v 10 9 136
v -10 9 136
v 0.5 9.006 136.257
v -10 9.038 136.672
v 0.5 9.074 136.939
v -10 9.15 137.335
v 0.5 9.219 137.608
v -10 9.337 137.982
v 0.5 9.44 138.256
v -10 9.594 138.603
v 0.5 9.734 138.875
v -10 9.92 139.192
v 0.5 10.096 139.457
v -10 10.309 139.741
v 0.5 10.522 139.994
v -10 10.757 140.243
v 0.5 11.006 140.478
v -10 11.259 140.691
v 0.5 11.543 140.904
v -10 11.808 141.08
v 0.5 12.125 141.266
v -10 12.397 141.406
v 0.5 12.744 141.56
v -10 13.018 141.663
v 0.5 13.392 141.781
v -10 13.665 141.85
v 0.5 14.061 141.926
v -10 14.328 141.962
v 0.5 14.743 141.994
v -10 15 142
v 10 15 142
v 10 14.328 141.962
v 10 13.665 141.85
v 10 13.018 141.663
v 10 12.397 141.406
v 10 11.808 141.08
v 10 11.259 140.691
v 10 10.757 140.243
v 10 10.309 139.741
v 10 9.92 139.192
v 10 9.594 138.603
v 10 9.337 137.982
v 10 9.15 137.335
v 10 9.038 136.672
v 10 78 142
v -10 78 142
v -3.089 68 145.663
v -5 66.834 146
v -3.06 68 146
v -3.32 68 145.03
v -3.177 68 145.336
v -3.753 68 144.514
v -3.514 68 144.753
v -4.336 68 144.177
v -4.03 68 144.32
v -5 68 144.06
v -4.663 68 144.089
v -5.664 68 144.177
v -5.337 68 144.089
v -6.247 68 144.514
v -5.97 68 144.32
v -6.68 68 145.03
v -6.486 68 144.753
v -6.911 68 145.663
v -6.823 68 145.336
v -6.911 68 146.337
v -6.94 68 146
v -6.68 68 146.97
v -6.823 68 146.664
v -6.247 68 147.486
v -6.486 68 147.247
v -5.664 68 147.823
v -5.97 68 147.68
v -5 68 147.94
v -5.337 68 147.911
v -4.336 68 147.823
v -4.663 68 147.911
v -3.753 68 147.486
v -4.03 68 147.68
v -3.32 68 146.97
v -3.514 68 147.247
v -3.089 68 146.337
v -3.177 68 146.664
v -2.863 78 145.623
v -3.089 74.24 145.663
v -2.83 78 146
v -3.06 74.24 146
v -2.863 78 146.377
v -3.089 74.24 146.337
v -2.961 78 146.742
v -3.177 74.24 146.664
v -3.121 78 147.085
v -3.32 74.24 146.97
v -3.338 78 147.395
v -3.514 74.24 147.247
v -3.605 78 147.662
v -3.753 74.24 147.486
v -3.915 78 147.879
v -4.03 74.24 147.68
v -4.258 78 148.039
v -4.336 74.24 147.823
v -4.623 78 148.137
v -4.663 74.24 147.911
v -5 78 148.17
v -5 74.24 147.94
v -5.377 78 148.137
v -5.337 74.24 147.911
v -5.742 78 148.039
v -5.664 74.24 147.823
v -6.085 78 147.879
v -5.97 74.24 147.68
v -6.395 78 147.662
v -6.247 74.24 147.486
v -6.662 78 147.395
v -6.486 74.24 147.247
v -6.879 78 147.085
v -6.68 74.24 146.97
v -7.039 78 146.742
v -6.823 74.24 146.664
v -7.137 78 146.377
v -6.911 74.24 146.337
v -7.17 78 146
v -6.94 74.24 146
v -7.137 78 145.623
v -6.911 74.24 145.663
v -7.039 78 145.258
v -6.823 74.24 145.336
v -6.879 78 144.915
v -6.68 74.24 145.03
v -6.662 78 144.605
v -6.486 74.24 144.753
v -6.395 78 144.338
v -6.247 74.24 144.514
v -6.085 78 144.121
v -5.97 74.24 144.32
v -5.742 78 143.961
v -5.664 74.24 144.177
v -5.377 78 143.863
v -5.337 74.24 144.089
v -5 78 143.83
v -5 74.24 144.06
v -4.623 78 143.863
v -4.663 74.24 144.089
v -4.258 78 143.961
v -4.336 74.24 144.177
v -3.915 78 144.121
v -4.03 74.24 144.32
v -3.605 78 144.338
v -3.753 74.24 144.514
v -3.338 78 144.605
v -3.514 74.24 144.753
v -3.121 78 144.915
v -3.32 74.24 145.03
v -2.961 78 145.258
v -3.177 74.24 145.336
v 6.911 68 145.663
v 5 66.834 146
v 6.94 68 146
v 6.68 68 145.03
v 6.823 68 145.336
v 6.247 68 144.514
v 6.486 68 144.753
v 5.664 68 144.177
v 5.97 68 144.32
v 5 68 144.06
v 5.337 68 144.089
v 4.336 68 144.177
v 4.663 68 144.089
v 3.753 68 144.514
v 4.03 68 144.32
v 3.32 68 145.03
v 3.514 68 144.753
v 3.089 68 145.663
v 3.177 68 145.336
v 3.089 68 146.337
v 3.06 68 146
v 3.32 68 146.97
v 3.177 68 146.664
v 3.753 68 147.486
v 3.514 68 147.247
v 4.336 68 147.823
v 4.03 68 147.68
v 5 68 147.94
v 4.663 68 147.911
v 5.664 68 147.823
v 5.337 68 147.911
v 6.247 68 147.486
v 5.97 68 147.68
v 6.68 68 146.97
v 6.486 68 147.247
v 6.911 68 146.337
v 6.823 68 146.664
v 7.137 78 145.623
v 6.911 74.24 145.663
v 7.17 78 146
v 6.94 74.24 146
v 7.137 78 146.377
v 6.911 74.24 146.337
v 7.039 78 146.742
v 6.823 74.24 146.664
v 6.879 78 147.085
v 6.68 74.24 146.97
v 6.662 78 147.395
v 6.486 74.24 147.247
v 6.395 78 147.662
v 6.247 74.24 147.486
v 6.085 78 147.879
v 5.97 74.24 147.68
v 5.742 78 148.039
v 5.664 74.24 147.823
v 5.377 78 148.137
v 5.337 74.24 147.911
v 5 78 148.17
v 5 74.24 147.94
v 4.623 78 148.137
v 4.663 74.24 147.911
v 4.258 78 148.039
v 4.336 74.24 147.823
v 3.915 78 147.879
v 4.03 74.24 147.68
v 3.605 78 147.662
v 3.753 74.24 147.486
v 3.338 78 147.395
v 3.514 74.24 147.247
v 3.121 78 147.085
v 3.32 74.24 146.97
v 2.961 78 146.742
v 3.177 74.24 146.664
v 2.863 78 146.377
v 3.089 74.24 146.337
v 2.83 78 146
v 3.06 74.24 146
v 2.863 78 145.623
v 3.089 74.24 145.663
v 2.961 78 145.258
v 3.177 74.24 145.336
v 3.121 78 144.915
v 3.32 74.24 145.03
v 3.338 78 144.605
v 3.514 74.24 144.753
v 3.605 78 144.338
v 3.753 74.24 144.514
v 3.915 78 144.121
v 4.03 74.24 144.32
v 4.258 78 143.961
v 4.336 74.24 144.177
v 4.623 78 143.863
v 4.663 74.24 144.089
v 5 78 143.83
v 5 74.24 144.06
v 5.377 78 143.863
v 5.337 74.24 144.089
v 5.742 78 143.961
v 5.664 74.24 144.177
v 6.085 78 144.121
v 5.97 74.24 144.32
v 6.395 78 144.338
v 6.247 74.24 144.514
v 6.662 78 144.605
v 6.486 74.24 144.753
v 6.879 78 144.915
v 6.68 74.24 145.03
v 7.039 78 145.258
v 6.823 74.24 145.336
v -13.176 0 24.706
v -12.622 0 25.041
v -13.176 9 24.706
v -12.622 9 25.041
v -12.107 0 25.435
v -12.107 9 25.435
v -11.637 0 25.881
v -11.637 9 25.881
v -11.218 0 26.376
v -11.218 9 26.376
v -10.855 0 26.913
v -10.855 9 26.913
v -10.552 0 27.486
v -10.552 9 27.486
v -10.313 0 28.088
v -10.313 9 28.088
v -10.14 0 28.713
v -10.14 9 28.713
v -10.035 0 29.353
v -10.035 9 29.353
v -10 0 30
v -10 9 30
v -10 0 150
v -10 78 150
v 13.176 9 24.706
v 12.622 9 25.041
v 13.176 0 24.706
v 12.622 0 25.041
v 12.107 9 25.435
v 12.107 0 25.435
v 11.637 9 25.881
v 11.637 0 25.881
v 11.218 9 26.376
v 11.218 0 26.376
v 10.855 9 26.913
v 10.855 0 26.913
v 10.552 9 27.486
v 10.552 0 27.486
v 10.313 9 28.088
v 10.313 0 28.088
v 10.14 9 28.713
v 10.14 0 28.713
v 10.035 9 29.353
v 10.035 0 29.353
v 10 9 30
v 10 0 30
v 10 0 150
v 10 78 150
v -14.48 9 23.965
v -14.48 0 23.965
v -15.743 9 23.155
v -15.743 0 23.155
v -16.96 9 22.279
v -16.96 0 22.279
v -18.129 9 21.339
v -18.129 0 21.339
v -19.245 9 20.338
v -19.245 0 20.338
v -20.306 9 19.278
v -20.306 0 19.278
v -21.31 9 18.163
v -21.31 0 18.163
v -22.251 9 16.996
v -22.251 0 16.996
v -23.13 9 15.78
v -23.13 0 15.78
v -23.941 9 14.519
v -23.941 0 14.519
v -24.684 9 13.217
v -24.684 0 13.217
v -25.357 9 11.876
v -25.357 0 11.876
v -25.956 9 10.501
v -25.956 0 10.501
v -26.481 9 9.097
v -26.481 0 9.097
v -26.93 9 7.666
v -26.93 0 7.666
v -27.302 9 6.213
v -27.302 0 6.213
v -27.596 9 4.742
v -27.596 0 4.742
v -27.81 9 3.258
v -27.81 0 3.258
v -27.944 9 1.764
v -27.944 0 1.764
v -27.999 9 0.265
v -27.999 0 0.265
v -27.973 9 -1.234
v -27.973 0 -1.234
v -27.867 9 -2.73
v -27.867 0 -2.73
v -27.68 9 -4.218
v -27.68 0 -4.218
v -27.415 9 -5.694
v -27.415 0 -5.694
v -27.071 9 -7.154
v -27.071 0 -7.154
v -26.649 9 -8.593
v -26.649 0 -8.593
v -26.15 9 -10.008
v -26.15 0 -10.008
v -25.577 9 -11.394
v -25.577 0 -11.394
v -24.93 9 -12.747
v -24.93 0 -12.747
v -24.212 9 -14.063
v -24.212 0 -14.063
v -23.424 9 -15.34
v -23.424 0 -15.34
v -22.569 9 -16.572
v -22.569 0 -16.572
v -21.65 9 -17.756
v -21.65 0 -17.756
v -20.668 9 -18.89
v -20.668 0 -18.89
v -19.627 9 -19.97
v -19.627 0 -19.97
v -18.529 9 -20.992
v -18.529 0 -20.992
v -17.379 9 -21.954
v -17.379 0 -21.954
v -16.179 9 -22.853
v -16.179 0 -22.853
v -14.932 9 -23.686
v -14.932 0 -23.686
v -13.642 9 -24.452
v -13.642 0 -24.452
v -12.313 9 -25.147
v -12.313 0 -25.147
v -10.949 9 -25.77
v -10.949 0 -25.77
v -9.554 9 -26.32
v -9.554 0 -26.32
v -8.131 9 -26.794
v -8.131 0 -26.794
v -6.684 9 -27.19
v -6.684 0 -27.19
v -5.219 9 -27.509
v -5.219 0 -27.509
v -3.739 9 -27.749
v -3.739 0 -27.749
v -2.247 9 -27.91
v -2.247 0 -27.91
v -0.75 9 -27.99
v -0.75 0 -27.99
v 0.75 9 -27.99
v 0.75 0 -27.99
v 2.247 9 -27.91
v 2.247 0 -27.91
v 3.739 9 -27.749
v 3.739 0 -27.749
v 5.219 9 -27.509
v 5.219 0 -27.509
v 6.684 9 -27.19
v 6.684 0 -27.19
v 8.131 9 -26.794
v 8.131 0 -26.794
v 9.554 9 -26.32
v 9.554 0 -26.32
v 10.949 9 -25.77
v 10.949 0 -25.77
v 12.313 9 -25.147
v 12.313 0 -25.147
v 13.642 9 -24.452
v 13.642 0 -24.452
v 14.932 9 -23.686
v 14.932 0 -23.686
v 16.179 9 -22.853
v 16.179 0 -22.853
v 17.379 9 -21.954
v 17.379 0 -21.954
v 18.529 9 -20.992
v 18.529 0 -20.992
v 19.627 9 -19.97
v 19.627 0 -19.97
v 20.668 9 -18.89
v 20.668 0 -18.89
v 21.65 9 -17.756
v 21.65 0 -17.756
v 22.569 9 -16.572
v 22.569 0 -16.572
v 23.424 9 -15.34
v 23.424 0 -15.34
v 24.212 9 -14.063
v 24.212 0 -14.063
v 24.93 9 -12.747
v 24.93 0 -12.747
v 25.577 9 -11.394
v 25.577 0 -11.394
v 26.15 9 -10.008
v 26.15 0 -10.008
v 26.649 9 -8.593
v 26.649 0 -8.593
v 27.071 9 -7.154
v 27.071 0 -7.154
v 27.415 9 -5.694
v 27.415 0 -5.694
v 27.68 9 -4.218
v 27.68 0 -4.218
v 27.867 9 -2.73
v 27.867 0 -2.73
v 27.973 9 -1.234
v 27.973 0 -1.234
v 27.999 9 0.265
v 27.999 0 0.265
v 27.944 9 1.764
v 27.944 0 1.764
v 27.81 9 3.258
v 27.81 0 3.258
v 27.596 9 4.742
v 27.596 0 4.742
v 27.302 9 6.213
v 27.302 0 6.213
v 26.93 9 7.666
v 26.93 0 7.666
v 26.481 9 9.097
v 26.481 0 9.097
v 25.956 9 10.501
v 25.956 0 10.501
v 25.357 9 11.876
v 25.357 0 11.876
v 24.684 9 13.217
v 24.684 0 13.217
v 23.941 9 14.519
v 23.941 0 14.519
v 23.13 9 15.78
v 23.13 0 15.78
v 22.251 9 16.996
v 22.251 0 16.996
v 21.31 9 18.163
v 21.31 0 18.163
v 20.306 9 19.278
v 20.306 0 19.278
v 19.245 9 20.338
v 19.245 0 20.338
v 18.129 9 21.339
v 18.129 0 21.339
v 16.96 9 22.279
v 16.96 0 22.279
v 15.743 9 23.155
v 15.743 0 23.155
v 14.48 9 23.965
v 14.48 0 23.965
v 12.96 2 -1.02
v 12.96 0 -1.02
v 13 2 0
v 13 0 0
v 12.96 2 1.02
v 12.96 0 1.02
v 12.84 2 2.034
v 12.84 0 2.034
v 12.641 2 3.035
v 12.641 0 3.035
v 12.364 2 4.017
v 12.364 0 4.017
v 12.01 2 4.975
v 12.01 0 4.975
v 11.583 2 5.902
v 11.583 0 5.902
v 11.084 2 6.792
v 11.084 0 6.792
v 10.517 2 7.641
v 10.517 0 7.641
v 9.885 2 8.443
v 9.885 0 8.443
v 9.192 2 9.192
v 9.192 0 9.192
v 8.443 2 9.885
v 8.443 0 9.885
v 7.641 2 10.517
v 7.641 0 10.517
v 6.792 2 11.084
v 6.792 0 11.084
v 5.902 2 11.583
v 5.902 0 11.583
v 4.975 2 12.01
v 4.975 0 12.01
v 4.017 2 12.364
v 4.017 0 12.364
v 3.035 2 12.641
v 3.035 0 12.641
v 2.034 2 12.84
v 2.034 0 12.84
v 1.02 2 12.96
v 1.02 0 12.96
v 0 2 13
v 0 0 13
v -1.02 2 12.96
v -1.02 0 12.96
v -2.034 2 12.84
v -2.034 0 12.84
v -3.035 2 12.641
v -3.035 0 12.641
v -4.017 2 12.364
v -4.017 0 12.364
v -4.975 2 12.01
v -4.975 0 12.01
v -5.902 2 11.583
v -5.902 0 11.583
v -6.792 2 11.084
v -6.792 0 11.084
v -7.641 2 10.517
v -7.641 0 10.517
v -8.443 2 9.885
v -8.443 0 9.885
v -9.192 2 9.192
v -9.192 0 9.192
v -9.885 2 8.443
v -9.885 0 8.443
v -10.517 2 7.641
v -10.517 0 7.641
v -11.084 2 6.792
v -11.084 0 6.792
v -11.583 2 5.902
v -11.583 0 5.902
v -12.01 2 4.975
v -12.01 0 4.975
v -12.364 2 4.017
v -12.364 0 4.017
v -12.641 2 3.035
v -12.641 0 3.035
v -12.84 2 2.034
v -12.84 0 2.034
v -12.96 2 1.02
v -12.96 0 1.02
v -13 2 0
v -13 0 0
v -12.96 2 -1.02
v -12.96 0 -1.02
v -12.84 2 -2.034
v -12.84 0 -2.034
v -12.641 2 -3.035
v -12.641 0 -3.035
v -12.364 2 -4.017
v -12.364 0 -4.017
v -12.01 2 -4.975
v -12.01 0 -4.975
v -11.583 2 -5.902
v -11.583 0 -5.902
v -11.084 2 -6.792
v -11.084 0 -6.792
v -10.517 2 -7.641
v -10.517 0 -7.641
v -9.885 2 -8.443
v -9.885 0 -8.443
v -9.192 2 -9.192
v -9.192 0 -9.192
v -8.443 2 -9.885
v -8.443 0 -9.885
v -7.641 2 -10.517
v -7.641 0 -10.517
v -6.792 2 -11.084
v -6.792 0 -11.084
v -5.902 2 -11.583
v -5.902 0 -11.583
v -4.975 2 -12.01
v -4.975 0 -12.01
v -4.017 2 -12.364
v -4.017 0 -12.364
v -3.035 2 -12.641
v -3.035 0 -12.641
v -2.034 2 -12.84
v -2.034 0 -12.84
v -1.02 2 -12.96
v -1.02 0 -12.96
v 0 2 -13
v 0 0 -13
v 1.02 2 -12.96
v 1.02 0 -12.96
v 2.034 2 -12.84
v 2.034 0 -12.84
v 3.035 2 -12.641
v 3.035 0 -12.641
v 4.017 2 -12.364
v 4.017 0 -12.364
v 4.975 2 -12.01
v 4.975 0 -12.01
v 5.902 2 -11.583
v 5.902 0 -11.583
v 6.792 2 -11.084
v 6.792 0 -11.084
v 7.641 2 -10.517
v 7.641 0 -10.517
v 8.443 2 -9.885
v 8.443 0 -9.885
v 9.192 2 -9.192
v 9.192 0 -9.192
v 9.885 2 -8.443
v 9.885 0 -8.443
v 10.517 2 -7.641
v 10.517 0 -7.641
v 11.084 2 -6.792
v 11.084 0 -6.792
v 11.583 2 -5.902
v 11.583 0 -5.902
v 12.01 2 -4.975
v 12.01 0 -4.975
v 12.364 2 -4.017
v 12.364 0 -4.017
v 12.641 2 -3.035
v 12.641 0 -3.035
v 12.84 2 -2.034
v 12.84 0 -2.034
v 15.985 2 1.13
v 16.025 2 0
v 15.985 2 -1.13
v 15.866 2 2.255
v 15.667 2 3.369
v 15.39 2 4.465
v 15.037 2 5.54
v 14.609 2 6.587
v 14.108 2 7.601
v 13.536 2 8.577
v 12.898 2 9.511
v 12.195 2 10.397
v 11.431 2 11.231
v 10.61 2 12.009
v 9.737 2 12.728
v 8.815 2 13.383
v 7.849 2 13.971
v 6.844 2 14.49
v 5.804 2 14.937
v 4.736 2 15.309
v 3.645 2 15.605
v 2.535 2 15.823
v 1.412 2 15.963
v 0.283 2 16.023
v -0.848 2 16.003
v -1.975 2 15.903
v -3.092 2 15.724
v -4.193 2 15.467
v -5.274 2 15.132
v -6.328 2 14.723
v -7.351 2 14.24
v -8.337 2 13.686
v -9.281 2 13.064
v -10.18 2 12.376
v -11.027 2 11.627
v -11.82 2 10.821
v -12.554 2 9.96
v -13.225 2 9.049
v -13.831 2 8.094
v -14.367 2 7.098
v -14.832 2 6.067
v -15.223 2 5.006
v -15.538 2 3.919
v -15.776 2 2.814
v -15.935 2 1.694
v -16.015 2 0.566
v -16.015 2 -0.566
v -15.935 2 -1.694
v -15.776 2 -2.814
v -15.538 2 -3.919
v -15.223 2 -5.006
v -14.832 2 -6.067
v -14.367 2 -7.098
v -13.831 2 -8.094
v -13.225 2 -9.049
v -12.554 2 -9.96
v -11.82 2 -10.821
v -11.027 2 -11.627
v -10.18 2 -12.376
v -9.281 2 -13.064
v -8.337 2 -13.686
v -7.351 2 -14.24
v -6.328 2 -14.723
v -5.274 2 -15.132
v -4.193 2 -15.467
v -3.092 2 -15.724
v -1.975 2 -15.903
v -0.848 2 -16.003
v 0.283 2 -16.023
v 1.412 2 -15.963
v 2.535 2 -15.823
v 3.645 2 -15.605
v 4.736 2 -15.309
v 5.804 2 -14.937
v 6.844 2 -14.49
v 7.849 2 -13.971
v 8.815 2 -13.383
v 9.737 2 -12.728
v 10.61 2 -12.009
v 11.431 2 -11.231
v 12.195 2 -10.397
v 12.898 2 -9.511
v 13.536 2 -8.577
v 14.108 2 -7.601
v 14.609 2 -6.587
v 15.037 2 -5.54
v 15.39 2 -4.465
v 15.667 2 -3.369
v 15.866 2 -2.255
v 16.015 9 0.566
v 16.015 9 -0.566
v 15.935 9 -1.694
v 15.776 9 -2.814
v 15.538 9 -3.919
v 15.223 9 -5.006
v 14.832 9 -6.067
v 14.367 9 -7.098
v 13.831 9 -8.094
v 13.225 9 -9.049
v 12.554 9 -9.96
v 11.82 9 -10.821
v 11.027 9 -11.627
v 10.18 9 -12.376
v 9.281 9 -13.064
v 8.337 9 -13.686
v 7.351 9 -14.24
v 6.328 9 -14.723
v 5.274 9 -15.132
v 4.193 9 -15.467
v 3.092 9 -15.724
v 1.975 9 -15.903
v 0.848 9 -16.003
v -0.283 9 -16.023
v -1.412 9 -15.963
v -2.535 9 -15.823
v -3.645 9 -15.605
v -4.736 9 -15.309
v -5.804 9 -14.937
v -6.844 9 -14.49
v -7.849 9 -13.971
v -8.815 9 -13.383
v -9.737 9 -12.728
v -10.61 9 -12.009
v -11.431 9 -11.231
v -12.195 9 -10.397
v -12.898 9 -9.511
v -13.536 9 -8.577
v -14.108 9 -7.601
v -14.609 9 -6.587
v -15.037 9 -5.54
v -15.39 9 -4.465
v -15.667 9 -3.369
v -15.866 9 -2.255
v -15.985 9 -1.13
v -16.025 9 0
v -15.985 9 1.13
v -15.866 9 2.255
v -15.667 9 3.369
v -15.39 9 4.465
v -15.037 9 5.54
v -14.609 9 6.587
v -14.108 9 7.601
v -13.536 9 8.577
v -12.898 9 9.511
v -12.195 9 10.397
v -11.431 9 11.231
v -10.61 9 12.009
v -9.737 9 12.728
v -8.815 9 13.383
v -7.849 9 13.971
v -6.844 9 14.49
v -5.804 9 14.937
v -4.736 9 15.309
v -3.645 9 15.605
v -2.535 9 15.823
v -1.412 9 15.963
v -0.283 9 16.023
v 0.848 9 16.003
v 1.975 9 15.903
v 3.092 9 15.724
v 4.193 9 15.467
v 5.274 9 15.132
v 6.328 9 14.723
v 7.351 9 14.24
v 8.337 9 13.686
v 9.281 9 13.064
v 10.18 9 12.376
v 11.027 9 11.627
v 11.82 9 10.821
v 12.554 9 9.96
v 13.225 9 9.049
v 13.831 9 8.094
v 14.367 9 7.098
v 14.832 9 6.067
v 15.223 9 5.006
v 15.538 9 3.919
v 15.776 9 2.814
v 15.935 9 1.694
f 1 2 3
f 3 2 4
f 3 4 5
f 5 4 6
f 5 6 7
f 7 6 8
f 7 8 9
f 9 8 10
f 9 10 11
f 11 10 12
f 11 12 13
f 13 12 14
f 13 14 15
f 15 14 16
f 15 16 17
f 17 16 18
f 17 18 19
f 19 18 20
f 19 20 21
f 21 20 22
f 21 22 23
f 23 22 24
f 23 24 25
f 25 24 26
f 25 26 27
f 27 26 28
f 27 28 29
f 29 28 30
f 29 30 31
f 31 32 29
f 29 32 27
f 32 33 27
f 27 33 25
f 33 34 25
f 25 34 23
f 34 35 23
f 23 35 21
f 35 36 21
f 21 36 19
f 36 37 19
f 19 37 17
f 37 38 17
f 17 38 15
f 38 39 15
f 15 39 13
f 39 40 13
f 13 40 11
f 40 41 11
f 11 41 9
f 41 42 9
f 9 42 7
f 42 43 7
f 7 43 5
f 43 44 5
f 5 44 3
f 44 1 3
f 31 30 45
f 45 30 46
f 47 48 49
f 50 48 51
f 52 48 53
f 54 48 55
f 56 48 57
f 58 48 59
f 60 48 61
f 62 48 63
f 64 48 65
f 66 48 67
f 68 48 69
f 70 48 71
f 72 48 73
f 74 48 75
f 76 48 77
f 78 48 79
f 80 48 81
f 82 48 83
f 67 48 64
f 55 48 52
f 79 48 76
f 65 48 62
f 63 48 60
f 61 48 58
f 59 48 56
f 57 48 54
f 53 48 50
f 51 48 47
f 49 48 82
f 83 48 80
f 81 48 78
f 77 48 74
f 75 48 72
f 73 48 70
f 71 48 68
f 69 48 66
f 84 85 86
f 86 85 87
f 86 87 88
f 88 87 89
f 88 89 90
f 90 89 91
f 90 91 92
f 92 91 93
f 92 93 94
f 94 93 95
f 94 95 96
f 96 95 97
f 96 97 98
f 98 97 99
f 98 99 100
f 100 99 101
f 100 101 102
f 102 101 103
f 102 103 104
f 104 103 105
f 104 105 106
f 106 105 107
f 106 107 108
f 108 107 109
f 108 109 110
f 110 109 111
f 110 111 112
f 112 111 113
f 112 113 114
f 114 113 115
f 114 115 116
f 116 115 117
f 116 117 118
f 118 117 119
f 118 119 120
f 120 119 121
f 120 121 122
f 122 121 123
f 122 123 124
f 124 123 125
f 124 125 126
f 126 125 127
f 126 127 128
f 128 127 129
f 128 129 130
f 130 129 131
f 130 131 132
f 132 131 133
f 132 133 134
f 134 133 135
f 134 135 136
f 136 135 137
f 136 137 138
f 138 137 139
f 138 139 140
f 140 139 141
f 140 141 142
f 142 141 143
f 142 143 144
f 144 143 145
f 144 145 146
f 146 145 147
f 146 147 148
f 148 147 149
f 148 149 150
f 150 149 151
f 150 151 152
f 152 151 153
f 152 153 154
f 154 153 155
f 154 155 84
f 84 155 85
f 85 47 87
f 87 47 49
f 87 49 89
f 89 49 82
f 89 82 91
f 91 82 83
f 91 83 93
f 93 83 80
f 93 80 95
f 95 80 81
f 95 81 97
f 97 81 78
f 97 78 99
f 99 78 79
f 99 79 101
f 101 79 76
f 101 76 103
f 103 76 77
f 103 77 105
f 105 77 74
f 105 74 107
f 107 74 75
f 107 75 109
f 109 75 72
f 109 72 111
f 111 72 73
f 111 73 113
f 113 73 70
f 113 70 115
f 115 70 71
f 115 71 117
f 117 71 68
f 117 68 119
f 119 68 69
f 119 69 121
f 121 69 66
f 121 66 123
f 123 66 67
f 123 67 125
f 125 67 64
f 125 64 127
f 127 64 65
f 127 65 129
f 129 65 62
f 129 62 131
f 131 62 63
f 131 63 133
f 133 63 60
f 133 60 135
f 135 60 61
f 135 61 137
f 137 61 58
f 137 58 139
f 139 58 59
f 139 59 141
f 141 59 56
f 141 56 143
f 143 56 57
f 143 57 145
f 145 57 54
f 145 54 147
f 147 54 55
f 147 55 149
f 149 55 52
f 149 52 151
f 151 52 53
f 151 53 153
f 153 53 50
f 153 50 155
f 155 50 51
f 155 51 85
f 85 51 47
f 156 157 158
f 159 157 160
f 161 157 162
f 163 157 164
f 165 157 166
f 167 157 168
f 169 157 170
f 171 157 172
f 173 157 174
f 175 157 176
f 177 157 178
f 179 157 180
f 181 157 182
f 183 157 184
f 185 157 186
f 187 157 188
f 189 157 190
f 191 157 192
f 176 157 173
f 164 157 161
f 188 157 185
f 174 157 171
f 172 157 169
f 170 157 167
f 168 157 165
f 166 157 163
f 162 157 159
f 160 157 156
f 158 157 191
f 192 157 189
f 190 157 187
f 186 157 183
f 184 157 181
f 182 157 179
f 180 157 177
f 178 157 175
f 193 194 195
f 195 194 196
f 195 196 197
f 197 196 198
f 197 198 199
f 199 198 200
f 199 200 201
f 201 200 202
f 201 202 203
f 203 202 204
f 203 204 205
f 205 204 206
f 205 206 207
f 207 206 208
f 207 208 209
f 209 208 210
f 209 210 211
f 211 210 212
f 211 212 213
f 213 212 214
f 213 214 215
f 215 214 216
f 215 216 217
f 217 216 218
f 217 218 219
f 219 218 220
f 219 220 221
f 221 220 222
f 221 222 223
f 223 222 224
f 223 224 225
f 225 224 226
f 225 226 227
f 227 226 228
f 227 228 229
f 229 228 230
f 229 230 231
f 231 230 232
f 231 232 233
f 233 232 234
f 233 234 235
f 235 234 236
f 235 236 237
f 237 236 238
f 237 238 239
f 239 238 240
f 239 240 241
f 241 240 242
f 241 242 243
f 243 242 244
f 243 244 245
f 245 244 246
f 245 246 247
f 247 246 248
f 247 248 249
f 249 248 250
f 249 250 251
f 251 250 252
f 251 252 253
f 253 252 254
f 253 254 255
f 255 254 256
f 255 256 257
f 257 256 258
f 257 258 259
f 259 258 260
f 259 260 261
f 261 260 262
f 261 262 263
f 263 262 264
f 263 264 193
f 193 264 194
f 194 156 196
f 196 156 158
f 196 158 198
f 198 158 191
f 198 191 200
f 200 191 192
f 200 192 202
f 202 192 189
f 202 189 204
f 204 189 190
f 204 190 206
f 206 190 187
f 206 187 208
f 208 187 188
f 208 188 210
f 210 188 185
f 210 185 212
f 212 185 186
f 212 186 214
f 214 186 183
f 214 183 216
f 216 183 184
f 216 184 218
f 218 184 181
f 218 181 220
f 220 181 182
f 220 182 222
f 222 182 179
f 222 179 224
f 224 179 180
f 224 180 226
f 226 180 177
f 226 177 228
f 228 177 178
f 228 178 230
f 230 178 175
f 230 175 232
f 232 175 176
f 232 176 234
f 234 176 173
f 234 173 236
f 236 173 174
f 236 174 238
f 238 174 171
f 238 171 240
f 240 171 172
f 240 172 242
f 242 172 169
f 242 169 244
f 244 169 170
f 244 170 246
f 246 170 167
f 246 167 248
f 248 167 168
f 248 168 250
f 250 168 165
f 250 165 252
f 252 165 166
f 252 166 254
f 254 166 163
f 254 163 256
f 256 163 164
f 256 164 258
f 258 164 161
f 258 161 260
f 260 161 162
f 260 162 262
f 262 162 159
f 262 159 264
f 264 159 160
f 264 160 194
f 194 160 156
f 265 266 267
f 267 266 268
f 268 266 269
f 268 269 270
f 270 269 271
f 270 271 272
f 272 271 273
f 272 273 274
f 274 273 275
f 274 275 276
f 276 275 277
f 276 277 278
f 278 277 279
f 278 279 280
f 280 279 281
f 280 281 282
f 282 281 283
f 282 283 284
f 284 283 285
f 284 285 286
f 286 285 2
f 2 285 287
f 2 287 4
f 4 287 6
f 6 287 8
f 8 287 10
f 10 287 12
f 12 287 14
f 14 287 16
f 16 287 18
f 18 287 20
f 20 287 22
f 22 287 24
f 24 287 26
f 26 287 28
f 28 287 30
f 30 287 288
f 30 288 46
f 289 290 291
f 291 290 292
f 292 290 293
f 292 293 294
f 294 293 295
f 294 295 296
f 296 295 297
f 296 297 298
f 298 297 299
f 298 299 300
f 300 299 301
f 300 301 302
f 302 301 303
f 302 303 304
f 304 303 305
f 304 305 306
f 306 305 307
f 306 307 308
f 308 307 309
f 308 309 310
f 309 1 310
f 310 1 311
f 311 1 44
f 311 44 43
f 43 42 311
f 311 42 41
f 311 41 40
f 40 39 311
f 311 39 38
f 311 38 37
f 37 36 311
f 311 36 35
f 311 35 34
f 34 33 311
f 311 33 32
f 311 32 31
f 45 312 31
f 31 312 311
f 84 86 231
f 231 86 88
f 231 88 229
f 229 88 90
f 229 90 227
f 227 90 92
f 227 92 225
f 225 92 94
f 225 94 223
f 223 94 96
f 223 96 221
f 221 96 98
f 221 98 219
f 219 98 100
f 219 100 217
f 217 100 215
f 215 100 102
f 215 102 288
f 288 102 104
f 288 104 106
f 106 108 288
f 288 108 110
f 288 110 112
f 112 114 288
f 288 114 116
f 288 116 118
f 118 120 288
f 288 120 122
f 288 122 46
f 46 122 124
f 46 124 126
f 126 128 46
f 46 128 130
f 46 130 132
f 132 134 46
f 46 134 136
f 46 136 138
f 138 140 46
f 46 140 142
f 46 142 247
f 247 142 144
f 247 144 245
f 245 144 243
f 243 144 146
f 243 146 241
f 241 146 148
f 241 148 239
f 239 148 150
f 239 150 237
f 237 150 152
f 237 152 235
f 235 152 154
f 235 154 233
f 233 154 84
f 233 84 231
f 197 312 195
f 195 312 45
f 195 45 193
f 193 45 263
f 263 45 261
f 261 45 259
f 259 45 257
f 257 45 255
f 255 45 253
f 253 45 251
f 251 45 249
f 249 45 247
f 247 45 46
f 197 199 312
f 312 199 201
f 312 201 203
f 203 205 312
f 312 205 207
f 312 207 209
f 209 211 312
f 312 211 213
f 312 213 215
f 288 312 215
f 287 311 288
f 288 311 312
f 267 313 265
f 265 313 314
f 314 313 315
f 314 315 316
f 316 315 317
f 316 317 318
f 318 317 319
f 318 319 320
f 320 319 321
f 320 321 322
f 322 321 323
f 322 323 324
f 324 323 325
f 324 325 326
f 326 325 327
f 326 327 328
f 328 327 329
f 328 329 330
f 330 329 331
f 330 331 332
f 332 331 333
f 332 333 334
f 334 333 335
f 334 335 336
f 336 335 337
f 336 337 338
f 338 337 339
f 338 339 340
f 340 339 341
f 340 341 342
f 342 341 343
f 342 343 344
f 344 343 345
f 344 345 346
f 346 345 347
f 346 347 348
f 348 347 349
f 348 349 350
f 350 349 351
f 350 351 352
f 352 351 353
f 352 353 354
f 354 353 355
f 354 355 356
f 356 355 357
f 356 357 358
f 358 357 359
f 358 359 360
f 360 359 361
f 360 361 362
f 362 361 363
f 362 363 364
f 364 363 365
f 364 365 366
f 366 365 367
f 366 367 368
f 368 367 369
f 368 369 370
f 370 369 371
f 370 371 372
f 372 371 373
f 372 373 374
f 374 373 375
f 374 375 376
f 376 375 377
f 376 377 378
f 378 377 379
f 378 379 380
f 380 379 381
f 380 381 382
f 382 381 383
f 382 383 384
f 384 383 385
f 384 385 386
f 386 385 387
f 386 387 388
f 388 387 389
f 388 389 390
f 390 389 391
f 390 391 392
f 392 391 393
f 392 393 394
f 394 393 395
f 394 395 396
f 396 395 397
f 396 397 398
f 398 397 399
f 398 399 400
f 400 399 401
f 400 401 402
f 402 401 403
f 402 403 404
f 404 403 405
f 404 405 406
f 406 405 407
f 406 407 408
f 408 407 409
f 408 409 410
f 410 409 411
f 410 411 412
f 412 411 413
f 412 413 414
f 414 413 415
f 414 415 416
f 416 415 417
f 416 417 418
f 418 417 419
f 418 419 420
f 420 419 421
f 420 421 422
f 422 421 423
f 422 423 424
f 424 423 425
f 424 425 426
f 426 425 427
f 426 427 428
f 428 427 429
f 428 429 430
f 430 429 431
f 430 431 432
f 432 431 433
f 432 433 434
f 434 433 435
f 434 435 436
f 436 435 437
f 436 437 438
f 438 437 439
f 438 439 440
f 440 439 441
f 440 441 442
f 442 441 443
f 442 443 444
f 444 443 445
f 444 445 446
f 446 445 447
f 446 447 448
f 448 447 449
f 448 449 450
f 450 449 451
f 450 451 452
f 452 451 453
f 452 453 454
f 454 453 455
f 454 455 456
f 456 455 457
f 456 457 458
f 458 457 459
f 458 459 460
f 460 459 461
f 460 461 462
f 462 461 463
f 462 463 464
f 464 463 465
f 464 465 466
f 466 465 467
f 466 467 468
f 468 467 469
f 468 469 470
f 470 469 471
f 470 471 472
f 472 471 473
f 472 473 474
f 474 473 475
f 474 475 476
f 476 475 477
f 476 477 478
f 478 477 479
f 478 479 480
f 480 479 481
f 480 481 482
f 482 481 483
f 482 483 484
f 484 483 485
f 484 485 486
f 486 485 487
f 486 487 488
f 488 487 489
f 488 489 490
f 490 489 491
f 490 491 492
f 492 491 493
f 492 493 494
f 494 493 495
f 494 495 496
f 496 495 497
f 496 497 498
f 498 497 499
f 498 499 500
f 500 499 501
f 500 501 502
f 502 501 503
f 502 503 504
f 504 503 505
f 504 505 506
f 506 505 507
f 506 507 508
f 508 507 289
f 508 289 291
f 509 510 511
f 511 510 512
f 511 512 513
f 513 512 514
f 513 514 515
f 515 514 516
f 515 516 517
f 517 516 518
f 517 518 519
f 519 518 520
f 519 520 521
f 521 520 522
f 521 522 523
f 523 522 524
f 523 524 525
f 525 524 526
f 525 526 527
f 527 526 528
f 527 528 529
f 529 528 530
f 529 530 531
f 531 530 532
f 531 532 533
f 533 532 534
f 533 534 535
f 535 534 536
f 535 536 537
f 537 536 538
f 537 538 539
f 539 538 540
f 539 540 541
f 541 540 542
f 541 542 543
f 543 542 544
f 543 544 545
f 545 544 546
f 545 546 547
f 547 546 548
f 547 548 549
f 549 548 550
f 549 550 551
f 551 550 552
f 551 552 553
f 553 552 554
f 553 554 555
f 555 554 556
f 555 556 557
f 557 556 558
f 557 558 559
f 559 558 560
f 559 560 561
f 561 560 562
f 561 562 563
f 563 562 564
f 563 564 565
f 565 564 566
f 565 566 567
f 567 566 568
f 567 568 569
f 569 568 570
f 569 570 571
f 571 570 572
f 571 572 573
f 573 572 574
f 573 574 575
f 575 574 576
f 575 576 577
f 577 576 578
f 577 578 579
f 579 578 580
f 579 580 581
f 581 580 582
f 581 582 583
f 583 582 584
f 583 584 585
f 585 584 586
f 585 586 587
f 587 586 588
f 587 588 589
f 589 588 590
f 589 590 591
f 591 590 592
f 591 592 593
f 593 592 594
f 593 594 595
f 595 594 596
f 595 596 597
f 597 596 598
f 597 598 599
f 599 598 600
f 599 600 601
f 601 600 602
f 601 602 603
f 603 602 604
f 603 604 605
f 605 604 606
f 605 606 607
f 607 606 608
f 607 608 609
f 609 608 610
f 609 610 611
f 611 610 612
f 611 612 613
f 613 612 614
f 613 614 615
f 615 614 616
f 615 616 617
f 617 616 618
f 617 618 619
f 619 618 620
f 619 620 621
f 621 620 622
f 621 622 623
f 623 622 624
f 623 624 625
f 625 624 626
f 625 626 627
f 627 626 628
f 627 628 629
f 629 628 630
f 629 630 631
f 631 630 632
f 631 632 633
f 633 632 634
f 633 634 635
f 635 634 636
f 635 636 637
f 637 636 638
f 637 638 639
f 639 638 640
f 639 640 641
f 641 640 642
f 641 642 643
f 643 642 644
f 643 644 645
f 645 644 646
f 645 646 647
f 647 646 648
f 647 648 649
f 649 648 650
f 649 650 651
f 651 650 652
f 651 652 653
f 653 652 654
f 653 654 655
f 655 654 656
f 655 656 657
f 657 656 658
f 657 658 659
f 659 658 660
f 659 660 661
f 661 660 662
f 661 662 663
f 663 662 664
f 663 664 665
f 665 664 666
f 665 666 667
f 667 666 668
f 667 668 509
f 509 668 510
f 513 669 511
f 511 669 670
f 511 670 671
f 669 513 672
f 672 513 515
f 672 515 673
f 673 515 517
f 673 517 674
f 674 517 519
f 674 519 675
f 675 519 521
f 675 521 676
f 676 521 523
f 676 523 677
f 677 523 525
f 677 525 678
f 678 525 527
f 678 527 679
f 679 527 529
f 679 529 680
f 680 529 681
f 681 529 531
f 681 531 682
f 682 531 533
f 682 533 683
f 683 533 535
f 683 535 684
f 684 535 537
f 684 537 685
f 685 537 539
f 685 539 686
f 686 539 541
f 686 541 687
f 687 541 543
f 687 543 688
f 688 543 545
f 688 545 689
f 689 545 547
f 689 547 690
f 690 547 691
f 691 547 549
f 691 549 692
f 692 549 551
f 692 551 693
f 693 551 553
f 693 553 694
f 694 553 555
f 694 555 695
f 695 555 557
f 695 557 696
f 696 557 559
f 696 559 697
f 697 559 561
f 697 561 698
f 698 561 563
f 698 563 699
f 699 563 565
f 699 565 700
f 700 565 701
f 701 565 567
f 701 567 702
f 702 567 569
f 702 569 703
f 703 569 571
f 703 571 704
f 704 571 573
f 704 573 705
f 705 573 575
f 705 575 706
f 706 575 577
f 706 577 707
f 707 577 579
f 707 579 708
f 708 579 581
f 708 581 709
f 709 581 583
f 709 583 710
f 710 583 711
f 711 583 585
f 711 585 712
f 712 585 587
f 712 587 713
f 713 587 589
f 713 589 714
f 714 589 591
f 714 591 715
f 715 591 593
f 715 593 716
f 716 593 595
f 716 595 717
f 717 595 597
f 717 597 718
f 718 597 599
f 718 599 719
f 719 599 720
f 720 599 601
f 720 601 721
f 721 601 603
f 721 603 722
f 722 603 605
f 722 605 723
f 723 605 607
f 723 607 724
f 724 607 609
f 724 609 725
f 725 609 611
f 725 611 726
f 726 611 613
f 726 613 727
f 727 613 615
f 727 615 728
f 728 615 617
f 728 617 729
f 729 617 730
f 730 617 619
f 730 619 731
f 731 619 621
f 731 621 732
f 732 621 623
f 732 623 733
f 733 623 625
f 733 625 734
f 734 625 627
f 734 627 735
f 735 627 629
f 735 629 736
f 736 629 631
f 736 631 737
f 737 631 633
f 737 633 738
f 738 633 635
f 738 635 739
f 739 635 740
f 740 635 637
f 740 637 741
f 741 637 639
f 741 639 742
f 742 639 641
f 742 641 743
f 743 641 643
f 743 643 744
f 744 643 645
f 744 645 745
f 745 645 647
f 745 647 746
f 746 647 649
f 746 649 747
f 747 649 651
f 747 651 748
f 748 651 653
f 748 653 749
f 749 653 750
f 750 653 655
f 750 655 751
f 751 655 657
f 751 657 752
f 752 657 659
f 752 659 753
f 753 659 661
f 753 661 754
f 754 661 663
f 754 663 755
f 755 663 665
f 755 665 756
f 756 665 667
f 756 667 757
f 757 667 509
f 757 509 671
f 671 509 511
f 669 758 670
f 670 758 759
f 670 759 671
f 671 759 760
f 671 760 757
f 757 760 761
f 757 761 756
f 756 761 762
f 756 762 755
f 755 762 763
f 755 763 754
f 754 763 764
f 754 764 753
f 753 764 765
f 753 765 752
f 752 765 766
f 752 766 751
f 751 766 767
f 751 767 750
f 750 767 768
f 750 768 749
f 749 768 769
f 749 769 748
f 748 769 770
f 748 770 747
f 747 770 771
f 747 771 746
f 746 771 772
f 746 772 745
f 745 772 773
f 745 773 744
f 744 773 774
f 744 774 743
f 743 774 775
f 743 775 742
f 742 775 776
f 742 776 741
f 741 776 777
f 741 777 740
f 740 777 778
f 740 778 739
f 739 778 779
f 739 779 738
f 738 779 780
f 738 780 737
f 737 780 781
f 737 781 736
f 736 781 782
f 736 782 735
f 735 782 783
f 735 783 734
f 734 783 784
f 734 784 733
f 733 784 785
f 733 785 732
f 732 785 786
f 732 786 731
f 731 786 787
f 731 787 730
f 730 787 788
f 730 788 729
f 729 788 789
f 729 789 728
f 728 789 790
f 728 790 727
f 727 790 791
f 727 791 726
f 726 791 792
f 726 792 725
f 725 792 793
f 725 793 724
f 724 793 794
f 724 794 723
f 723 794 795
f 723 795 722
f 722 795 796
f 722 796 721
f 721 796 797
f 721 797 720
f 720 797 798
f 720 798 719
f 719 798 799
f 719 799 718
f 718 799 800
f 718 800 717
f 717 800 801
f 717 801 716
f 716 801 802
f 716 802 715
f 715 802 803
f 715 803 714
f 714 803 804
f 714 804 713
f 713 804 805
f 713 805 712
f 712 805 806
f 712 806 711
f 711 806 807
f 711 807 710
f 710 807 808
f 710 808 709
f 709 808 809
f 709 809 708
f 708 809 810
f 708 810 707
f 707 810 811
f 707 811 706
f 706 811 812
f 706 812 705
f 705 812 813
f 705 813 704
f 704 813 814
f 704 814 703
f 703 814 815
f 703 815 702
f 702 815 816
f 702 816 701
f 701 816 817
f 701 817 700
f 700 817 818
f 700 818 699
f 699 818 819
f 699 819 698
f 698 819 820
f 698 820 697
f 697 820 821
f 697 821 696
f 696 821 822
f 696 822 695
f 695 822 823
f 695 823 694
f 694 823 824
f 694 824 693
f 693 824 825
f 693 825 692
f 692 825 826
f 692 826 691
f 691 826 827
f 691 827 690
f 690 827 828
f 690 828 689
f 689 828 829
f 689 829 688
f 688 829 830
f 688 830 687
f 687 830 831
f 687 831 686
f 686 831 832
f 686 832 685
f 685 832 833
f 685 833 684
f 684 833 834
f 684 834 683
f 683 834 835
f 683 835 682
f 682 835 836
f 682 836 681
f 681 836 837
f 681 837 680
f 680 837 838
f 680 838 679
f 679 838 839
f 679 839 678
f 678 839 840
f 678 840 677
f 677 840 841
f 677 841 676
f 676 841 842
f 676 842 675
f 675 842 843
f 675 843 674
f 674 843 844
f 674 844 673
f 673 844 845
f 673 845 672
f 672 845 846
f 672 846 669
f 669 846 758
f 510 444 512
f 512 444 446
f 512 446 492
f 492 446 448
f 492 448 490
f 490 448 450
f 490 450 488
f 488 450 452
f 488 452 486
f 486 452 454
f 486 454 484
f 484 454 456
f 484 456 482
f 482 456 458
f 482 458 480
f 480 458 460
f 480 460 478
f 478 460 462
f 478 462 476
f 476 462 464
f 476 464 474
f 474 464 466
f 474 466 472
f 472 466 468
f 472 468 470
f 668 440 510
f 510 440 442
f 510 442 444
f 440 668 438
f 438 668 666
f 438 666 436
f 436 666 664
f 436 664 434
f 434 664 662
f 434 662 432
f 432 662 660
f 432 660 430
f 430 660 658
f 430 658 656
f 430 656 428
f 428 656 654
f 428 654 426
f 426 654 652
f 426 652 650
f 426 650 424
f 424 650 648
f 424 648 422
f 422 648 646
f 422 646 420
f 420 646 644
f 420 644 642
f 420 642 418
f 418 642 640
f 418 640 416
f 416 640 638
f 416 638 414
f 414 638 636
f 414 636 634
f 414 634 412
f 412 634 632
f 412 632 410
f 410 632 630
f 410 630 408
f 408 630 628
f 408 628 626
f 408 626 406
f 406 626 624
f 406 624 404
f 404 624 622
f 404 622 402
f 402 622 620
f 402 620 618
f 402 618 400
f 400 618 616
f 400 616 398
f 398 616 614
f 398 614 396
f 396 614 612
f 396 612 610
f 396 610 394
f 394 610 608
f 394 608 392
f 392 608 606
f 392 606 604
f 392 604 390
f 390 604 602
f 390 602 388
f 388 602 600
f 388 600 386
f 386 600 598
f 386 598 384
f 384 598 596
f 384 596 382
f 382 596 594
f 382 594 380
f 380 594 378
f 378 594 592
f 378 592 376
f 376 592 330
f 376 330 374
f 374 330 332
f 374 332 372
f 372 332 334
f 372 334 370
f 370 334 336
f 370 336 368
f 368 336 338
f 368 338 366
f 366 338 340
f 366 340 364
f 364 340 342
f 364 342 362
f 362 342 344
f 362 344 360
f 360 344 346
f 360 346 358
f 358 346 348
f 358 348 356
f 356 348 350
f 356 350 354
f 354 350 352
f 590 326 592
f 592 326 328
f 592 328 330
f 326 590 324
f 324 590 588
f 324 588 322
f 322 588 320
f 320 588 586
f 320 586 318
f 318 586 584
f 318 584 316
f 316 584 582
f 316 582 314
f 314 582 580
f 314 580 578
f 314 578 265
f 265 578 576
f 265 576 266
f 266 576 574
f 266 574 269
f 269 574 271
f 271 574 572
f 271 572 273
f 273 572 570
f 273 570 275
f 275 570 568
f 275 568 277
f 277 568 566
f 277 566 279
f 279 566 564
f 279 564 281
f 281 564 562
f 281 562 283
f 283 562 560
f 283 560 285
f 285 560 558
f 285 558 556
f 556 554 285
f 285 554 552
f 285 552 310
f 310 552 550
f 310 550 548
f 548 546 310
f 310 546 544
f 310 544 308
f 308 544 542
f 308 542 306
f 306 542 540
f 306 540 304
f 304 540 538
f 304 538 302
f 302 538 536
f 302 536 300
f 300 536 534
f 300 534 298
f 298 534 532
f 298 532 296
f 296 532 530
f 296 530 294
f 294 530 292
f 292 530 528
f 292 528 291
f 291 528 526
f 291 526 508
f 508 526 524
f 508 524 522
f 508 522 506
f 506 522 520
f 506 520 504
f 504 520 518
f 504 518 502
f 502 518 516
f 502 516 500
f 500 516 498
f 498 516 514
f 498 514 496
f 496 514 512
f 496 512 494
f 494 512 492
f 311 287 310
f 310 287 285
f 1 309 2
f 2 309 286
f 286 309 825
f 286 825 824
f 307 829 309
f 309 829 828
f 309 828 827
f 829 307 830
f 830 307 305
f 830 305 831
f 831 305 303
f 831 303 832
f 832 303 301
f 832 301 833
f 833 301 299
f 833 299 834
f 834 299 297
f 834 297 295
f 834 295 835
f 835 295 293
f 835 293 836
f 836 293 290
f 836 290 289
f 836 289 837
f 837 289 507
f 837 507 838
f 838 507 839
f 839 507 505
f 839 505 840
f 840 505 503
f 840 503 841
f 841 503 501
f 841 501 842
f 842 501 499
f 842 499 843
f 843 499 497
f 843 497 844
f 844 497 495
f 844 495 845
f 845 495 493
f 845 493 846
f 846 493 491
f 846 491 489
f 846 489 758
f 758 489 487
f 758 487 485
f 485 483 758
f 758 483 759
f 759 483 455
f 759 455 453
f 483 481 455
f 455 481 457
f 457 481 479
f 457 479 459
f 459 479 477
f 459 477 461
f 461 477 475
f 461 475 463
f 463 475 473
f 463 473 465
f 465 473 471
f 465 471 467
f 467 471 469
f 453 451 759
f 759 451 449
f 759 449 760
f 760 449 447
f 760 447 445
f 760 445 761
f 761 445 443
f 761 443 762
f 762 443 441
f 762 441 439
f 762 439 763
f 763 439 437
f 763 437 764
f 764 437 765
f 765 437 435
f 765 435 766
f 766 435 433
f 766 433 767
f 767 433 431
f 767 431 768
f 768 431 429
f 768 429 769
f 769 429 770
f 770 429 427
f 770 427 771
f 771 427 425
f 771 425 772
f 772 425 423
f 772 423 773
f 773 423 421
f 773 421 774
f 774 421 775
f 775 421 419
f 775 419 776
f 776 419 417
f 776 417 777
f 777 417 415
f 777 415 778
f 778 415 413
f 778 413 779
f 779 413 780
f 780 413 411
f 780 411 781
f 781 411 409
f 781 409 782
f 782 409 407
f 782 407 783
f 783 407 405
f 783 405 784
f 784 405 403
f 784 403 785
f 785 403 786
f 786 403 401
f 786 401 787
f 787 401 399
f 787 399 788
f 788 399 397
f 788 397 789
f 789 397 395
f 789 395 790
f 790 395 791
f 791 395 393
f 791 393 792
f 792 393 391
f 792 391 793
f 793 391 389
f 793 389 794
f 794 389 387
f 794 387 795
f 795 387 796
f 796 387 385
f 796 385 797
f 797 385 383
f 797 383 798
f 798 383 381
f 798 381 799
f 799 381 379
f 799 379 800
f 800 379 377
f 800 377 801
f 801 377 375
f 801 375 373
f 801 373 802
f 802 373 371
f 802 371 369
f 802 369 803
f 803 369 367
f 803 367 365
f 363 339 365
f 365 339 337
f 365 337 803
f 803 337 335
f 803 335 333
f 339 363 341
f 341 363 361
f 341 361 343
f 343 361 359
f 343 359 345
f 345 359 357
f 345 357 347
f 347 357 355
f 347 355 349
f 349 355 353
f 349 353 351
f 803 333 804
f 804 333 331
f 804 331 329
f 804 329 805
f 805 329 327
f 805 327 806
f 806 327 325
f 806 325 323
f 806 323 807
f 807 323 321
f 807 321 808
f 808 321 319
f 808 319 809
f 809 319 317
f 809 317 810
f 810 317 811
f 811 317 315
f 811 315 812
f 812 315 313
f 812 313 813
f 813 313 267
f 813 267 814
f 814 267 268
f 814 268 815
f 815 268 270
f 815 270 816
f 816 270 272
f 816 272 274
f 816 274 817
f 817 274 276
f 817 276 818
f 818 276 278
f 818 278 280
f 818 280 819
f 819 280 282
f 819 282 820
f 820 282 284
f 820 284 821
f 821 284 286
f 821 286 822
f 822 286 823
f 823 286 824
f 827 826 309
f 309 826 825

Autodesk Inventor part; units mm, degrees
ref_plane "YZ Plane" through (0, 0, 0) normal (1, 0, 0) x (0, 1, 0)
ref_plane "XZ Plane" through (0, 0, 0) normal (0, 1, 0) x (-1, 0, 0)
ref_plane "XY Plane" through (0, 0, 0) normal (0, 0, 1) x (1, 0, 0)
sketch "스케치1" plane through (0, 0, 0) normal (0, 1, 0) x (-1, 0, 0)
  circle A0 centre (0, 0) radius 16.025
  circle A1 centre (0, 0) radius 28
  dimension "d0" = 32.05
  dimension "d1" = 56
extrude "돌출1" add sketch "스케치1" along normal blind 9
sketch "스케치2" plane through (0, 0, 0) normal (0, -1, 0) x (1, 0, 0)
  circle A0 centre (0, 0) radius 13
  circle A1 centre (0, 0) radius 16.025 projected
  dimension "d4" = 26
extrude "돌출2" add sketch "스케치2" against normal blind 2
sketch "스케치3" plane through (0, 0, 0) normal (0, -1, 0) x (1, 0, 0)
  circle A0 centre (0, 0) radius 28 projected
  line L0 (-10, 26.1534) -> (10, 26.1534)
  line L1 (10, 26.1534) -> (10, 150)
  line L2 (10, 150) -> (-10, 150)
  line L3 (-10, 150) -> (-10, 26.1534)
  dimension "d7" = 20
  dimension "d8" = 10
  dimension "d15" = 150
extrude "돌출3" add sketch "스케치3" against normal up to surface (9 mm away) contours A0 L3 L2 L1
sketch "스케치4" plane through (0, 9, 0) normal (0, 1, 0) x (1, 0, 0)
  line L0 (10, -150) -> (-10, -150) projected
  line L1 (10, -150) -> (-10, -150)
  line L2 (-10, -150) -> (-10, -142)
  line L3 (-10, -142) -> (10, -142)
  line L4 (10, -142) -> (10, -150)
  point P0 (0, 0)
  dimension "d12" = 8
extrude "돌출4" add sketch "스케치4" along normal blind 69
fillet "모깎기1" radius 6 2 edges at (10, 4.5, 26.1534) (-10, 4.5, 26.1534)
sketch "스케치5" plane through (0, 78, 0) normal (0, 1, 0) x (1, 0, 0)
  circle A0 centre (-5, -146) radius 1.55 projected
  circle A1 centre (5, -146) radius 1.55 projected
  point P0 (0, 0)
hole "구멍1" at (-5, 78, 146) at (5, 78, 146) direction (0, -1, 0) diameter 3.88 depth 10 tip angle 118 countersink diameter 4.34 countersink angle 7
fillet "모깎기2" radius 6 1 edges at (0, 9, 142)
properties part number "test_arm"
